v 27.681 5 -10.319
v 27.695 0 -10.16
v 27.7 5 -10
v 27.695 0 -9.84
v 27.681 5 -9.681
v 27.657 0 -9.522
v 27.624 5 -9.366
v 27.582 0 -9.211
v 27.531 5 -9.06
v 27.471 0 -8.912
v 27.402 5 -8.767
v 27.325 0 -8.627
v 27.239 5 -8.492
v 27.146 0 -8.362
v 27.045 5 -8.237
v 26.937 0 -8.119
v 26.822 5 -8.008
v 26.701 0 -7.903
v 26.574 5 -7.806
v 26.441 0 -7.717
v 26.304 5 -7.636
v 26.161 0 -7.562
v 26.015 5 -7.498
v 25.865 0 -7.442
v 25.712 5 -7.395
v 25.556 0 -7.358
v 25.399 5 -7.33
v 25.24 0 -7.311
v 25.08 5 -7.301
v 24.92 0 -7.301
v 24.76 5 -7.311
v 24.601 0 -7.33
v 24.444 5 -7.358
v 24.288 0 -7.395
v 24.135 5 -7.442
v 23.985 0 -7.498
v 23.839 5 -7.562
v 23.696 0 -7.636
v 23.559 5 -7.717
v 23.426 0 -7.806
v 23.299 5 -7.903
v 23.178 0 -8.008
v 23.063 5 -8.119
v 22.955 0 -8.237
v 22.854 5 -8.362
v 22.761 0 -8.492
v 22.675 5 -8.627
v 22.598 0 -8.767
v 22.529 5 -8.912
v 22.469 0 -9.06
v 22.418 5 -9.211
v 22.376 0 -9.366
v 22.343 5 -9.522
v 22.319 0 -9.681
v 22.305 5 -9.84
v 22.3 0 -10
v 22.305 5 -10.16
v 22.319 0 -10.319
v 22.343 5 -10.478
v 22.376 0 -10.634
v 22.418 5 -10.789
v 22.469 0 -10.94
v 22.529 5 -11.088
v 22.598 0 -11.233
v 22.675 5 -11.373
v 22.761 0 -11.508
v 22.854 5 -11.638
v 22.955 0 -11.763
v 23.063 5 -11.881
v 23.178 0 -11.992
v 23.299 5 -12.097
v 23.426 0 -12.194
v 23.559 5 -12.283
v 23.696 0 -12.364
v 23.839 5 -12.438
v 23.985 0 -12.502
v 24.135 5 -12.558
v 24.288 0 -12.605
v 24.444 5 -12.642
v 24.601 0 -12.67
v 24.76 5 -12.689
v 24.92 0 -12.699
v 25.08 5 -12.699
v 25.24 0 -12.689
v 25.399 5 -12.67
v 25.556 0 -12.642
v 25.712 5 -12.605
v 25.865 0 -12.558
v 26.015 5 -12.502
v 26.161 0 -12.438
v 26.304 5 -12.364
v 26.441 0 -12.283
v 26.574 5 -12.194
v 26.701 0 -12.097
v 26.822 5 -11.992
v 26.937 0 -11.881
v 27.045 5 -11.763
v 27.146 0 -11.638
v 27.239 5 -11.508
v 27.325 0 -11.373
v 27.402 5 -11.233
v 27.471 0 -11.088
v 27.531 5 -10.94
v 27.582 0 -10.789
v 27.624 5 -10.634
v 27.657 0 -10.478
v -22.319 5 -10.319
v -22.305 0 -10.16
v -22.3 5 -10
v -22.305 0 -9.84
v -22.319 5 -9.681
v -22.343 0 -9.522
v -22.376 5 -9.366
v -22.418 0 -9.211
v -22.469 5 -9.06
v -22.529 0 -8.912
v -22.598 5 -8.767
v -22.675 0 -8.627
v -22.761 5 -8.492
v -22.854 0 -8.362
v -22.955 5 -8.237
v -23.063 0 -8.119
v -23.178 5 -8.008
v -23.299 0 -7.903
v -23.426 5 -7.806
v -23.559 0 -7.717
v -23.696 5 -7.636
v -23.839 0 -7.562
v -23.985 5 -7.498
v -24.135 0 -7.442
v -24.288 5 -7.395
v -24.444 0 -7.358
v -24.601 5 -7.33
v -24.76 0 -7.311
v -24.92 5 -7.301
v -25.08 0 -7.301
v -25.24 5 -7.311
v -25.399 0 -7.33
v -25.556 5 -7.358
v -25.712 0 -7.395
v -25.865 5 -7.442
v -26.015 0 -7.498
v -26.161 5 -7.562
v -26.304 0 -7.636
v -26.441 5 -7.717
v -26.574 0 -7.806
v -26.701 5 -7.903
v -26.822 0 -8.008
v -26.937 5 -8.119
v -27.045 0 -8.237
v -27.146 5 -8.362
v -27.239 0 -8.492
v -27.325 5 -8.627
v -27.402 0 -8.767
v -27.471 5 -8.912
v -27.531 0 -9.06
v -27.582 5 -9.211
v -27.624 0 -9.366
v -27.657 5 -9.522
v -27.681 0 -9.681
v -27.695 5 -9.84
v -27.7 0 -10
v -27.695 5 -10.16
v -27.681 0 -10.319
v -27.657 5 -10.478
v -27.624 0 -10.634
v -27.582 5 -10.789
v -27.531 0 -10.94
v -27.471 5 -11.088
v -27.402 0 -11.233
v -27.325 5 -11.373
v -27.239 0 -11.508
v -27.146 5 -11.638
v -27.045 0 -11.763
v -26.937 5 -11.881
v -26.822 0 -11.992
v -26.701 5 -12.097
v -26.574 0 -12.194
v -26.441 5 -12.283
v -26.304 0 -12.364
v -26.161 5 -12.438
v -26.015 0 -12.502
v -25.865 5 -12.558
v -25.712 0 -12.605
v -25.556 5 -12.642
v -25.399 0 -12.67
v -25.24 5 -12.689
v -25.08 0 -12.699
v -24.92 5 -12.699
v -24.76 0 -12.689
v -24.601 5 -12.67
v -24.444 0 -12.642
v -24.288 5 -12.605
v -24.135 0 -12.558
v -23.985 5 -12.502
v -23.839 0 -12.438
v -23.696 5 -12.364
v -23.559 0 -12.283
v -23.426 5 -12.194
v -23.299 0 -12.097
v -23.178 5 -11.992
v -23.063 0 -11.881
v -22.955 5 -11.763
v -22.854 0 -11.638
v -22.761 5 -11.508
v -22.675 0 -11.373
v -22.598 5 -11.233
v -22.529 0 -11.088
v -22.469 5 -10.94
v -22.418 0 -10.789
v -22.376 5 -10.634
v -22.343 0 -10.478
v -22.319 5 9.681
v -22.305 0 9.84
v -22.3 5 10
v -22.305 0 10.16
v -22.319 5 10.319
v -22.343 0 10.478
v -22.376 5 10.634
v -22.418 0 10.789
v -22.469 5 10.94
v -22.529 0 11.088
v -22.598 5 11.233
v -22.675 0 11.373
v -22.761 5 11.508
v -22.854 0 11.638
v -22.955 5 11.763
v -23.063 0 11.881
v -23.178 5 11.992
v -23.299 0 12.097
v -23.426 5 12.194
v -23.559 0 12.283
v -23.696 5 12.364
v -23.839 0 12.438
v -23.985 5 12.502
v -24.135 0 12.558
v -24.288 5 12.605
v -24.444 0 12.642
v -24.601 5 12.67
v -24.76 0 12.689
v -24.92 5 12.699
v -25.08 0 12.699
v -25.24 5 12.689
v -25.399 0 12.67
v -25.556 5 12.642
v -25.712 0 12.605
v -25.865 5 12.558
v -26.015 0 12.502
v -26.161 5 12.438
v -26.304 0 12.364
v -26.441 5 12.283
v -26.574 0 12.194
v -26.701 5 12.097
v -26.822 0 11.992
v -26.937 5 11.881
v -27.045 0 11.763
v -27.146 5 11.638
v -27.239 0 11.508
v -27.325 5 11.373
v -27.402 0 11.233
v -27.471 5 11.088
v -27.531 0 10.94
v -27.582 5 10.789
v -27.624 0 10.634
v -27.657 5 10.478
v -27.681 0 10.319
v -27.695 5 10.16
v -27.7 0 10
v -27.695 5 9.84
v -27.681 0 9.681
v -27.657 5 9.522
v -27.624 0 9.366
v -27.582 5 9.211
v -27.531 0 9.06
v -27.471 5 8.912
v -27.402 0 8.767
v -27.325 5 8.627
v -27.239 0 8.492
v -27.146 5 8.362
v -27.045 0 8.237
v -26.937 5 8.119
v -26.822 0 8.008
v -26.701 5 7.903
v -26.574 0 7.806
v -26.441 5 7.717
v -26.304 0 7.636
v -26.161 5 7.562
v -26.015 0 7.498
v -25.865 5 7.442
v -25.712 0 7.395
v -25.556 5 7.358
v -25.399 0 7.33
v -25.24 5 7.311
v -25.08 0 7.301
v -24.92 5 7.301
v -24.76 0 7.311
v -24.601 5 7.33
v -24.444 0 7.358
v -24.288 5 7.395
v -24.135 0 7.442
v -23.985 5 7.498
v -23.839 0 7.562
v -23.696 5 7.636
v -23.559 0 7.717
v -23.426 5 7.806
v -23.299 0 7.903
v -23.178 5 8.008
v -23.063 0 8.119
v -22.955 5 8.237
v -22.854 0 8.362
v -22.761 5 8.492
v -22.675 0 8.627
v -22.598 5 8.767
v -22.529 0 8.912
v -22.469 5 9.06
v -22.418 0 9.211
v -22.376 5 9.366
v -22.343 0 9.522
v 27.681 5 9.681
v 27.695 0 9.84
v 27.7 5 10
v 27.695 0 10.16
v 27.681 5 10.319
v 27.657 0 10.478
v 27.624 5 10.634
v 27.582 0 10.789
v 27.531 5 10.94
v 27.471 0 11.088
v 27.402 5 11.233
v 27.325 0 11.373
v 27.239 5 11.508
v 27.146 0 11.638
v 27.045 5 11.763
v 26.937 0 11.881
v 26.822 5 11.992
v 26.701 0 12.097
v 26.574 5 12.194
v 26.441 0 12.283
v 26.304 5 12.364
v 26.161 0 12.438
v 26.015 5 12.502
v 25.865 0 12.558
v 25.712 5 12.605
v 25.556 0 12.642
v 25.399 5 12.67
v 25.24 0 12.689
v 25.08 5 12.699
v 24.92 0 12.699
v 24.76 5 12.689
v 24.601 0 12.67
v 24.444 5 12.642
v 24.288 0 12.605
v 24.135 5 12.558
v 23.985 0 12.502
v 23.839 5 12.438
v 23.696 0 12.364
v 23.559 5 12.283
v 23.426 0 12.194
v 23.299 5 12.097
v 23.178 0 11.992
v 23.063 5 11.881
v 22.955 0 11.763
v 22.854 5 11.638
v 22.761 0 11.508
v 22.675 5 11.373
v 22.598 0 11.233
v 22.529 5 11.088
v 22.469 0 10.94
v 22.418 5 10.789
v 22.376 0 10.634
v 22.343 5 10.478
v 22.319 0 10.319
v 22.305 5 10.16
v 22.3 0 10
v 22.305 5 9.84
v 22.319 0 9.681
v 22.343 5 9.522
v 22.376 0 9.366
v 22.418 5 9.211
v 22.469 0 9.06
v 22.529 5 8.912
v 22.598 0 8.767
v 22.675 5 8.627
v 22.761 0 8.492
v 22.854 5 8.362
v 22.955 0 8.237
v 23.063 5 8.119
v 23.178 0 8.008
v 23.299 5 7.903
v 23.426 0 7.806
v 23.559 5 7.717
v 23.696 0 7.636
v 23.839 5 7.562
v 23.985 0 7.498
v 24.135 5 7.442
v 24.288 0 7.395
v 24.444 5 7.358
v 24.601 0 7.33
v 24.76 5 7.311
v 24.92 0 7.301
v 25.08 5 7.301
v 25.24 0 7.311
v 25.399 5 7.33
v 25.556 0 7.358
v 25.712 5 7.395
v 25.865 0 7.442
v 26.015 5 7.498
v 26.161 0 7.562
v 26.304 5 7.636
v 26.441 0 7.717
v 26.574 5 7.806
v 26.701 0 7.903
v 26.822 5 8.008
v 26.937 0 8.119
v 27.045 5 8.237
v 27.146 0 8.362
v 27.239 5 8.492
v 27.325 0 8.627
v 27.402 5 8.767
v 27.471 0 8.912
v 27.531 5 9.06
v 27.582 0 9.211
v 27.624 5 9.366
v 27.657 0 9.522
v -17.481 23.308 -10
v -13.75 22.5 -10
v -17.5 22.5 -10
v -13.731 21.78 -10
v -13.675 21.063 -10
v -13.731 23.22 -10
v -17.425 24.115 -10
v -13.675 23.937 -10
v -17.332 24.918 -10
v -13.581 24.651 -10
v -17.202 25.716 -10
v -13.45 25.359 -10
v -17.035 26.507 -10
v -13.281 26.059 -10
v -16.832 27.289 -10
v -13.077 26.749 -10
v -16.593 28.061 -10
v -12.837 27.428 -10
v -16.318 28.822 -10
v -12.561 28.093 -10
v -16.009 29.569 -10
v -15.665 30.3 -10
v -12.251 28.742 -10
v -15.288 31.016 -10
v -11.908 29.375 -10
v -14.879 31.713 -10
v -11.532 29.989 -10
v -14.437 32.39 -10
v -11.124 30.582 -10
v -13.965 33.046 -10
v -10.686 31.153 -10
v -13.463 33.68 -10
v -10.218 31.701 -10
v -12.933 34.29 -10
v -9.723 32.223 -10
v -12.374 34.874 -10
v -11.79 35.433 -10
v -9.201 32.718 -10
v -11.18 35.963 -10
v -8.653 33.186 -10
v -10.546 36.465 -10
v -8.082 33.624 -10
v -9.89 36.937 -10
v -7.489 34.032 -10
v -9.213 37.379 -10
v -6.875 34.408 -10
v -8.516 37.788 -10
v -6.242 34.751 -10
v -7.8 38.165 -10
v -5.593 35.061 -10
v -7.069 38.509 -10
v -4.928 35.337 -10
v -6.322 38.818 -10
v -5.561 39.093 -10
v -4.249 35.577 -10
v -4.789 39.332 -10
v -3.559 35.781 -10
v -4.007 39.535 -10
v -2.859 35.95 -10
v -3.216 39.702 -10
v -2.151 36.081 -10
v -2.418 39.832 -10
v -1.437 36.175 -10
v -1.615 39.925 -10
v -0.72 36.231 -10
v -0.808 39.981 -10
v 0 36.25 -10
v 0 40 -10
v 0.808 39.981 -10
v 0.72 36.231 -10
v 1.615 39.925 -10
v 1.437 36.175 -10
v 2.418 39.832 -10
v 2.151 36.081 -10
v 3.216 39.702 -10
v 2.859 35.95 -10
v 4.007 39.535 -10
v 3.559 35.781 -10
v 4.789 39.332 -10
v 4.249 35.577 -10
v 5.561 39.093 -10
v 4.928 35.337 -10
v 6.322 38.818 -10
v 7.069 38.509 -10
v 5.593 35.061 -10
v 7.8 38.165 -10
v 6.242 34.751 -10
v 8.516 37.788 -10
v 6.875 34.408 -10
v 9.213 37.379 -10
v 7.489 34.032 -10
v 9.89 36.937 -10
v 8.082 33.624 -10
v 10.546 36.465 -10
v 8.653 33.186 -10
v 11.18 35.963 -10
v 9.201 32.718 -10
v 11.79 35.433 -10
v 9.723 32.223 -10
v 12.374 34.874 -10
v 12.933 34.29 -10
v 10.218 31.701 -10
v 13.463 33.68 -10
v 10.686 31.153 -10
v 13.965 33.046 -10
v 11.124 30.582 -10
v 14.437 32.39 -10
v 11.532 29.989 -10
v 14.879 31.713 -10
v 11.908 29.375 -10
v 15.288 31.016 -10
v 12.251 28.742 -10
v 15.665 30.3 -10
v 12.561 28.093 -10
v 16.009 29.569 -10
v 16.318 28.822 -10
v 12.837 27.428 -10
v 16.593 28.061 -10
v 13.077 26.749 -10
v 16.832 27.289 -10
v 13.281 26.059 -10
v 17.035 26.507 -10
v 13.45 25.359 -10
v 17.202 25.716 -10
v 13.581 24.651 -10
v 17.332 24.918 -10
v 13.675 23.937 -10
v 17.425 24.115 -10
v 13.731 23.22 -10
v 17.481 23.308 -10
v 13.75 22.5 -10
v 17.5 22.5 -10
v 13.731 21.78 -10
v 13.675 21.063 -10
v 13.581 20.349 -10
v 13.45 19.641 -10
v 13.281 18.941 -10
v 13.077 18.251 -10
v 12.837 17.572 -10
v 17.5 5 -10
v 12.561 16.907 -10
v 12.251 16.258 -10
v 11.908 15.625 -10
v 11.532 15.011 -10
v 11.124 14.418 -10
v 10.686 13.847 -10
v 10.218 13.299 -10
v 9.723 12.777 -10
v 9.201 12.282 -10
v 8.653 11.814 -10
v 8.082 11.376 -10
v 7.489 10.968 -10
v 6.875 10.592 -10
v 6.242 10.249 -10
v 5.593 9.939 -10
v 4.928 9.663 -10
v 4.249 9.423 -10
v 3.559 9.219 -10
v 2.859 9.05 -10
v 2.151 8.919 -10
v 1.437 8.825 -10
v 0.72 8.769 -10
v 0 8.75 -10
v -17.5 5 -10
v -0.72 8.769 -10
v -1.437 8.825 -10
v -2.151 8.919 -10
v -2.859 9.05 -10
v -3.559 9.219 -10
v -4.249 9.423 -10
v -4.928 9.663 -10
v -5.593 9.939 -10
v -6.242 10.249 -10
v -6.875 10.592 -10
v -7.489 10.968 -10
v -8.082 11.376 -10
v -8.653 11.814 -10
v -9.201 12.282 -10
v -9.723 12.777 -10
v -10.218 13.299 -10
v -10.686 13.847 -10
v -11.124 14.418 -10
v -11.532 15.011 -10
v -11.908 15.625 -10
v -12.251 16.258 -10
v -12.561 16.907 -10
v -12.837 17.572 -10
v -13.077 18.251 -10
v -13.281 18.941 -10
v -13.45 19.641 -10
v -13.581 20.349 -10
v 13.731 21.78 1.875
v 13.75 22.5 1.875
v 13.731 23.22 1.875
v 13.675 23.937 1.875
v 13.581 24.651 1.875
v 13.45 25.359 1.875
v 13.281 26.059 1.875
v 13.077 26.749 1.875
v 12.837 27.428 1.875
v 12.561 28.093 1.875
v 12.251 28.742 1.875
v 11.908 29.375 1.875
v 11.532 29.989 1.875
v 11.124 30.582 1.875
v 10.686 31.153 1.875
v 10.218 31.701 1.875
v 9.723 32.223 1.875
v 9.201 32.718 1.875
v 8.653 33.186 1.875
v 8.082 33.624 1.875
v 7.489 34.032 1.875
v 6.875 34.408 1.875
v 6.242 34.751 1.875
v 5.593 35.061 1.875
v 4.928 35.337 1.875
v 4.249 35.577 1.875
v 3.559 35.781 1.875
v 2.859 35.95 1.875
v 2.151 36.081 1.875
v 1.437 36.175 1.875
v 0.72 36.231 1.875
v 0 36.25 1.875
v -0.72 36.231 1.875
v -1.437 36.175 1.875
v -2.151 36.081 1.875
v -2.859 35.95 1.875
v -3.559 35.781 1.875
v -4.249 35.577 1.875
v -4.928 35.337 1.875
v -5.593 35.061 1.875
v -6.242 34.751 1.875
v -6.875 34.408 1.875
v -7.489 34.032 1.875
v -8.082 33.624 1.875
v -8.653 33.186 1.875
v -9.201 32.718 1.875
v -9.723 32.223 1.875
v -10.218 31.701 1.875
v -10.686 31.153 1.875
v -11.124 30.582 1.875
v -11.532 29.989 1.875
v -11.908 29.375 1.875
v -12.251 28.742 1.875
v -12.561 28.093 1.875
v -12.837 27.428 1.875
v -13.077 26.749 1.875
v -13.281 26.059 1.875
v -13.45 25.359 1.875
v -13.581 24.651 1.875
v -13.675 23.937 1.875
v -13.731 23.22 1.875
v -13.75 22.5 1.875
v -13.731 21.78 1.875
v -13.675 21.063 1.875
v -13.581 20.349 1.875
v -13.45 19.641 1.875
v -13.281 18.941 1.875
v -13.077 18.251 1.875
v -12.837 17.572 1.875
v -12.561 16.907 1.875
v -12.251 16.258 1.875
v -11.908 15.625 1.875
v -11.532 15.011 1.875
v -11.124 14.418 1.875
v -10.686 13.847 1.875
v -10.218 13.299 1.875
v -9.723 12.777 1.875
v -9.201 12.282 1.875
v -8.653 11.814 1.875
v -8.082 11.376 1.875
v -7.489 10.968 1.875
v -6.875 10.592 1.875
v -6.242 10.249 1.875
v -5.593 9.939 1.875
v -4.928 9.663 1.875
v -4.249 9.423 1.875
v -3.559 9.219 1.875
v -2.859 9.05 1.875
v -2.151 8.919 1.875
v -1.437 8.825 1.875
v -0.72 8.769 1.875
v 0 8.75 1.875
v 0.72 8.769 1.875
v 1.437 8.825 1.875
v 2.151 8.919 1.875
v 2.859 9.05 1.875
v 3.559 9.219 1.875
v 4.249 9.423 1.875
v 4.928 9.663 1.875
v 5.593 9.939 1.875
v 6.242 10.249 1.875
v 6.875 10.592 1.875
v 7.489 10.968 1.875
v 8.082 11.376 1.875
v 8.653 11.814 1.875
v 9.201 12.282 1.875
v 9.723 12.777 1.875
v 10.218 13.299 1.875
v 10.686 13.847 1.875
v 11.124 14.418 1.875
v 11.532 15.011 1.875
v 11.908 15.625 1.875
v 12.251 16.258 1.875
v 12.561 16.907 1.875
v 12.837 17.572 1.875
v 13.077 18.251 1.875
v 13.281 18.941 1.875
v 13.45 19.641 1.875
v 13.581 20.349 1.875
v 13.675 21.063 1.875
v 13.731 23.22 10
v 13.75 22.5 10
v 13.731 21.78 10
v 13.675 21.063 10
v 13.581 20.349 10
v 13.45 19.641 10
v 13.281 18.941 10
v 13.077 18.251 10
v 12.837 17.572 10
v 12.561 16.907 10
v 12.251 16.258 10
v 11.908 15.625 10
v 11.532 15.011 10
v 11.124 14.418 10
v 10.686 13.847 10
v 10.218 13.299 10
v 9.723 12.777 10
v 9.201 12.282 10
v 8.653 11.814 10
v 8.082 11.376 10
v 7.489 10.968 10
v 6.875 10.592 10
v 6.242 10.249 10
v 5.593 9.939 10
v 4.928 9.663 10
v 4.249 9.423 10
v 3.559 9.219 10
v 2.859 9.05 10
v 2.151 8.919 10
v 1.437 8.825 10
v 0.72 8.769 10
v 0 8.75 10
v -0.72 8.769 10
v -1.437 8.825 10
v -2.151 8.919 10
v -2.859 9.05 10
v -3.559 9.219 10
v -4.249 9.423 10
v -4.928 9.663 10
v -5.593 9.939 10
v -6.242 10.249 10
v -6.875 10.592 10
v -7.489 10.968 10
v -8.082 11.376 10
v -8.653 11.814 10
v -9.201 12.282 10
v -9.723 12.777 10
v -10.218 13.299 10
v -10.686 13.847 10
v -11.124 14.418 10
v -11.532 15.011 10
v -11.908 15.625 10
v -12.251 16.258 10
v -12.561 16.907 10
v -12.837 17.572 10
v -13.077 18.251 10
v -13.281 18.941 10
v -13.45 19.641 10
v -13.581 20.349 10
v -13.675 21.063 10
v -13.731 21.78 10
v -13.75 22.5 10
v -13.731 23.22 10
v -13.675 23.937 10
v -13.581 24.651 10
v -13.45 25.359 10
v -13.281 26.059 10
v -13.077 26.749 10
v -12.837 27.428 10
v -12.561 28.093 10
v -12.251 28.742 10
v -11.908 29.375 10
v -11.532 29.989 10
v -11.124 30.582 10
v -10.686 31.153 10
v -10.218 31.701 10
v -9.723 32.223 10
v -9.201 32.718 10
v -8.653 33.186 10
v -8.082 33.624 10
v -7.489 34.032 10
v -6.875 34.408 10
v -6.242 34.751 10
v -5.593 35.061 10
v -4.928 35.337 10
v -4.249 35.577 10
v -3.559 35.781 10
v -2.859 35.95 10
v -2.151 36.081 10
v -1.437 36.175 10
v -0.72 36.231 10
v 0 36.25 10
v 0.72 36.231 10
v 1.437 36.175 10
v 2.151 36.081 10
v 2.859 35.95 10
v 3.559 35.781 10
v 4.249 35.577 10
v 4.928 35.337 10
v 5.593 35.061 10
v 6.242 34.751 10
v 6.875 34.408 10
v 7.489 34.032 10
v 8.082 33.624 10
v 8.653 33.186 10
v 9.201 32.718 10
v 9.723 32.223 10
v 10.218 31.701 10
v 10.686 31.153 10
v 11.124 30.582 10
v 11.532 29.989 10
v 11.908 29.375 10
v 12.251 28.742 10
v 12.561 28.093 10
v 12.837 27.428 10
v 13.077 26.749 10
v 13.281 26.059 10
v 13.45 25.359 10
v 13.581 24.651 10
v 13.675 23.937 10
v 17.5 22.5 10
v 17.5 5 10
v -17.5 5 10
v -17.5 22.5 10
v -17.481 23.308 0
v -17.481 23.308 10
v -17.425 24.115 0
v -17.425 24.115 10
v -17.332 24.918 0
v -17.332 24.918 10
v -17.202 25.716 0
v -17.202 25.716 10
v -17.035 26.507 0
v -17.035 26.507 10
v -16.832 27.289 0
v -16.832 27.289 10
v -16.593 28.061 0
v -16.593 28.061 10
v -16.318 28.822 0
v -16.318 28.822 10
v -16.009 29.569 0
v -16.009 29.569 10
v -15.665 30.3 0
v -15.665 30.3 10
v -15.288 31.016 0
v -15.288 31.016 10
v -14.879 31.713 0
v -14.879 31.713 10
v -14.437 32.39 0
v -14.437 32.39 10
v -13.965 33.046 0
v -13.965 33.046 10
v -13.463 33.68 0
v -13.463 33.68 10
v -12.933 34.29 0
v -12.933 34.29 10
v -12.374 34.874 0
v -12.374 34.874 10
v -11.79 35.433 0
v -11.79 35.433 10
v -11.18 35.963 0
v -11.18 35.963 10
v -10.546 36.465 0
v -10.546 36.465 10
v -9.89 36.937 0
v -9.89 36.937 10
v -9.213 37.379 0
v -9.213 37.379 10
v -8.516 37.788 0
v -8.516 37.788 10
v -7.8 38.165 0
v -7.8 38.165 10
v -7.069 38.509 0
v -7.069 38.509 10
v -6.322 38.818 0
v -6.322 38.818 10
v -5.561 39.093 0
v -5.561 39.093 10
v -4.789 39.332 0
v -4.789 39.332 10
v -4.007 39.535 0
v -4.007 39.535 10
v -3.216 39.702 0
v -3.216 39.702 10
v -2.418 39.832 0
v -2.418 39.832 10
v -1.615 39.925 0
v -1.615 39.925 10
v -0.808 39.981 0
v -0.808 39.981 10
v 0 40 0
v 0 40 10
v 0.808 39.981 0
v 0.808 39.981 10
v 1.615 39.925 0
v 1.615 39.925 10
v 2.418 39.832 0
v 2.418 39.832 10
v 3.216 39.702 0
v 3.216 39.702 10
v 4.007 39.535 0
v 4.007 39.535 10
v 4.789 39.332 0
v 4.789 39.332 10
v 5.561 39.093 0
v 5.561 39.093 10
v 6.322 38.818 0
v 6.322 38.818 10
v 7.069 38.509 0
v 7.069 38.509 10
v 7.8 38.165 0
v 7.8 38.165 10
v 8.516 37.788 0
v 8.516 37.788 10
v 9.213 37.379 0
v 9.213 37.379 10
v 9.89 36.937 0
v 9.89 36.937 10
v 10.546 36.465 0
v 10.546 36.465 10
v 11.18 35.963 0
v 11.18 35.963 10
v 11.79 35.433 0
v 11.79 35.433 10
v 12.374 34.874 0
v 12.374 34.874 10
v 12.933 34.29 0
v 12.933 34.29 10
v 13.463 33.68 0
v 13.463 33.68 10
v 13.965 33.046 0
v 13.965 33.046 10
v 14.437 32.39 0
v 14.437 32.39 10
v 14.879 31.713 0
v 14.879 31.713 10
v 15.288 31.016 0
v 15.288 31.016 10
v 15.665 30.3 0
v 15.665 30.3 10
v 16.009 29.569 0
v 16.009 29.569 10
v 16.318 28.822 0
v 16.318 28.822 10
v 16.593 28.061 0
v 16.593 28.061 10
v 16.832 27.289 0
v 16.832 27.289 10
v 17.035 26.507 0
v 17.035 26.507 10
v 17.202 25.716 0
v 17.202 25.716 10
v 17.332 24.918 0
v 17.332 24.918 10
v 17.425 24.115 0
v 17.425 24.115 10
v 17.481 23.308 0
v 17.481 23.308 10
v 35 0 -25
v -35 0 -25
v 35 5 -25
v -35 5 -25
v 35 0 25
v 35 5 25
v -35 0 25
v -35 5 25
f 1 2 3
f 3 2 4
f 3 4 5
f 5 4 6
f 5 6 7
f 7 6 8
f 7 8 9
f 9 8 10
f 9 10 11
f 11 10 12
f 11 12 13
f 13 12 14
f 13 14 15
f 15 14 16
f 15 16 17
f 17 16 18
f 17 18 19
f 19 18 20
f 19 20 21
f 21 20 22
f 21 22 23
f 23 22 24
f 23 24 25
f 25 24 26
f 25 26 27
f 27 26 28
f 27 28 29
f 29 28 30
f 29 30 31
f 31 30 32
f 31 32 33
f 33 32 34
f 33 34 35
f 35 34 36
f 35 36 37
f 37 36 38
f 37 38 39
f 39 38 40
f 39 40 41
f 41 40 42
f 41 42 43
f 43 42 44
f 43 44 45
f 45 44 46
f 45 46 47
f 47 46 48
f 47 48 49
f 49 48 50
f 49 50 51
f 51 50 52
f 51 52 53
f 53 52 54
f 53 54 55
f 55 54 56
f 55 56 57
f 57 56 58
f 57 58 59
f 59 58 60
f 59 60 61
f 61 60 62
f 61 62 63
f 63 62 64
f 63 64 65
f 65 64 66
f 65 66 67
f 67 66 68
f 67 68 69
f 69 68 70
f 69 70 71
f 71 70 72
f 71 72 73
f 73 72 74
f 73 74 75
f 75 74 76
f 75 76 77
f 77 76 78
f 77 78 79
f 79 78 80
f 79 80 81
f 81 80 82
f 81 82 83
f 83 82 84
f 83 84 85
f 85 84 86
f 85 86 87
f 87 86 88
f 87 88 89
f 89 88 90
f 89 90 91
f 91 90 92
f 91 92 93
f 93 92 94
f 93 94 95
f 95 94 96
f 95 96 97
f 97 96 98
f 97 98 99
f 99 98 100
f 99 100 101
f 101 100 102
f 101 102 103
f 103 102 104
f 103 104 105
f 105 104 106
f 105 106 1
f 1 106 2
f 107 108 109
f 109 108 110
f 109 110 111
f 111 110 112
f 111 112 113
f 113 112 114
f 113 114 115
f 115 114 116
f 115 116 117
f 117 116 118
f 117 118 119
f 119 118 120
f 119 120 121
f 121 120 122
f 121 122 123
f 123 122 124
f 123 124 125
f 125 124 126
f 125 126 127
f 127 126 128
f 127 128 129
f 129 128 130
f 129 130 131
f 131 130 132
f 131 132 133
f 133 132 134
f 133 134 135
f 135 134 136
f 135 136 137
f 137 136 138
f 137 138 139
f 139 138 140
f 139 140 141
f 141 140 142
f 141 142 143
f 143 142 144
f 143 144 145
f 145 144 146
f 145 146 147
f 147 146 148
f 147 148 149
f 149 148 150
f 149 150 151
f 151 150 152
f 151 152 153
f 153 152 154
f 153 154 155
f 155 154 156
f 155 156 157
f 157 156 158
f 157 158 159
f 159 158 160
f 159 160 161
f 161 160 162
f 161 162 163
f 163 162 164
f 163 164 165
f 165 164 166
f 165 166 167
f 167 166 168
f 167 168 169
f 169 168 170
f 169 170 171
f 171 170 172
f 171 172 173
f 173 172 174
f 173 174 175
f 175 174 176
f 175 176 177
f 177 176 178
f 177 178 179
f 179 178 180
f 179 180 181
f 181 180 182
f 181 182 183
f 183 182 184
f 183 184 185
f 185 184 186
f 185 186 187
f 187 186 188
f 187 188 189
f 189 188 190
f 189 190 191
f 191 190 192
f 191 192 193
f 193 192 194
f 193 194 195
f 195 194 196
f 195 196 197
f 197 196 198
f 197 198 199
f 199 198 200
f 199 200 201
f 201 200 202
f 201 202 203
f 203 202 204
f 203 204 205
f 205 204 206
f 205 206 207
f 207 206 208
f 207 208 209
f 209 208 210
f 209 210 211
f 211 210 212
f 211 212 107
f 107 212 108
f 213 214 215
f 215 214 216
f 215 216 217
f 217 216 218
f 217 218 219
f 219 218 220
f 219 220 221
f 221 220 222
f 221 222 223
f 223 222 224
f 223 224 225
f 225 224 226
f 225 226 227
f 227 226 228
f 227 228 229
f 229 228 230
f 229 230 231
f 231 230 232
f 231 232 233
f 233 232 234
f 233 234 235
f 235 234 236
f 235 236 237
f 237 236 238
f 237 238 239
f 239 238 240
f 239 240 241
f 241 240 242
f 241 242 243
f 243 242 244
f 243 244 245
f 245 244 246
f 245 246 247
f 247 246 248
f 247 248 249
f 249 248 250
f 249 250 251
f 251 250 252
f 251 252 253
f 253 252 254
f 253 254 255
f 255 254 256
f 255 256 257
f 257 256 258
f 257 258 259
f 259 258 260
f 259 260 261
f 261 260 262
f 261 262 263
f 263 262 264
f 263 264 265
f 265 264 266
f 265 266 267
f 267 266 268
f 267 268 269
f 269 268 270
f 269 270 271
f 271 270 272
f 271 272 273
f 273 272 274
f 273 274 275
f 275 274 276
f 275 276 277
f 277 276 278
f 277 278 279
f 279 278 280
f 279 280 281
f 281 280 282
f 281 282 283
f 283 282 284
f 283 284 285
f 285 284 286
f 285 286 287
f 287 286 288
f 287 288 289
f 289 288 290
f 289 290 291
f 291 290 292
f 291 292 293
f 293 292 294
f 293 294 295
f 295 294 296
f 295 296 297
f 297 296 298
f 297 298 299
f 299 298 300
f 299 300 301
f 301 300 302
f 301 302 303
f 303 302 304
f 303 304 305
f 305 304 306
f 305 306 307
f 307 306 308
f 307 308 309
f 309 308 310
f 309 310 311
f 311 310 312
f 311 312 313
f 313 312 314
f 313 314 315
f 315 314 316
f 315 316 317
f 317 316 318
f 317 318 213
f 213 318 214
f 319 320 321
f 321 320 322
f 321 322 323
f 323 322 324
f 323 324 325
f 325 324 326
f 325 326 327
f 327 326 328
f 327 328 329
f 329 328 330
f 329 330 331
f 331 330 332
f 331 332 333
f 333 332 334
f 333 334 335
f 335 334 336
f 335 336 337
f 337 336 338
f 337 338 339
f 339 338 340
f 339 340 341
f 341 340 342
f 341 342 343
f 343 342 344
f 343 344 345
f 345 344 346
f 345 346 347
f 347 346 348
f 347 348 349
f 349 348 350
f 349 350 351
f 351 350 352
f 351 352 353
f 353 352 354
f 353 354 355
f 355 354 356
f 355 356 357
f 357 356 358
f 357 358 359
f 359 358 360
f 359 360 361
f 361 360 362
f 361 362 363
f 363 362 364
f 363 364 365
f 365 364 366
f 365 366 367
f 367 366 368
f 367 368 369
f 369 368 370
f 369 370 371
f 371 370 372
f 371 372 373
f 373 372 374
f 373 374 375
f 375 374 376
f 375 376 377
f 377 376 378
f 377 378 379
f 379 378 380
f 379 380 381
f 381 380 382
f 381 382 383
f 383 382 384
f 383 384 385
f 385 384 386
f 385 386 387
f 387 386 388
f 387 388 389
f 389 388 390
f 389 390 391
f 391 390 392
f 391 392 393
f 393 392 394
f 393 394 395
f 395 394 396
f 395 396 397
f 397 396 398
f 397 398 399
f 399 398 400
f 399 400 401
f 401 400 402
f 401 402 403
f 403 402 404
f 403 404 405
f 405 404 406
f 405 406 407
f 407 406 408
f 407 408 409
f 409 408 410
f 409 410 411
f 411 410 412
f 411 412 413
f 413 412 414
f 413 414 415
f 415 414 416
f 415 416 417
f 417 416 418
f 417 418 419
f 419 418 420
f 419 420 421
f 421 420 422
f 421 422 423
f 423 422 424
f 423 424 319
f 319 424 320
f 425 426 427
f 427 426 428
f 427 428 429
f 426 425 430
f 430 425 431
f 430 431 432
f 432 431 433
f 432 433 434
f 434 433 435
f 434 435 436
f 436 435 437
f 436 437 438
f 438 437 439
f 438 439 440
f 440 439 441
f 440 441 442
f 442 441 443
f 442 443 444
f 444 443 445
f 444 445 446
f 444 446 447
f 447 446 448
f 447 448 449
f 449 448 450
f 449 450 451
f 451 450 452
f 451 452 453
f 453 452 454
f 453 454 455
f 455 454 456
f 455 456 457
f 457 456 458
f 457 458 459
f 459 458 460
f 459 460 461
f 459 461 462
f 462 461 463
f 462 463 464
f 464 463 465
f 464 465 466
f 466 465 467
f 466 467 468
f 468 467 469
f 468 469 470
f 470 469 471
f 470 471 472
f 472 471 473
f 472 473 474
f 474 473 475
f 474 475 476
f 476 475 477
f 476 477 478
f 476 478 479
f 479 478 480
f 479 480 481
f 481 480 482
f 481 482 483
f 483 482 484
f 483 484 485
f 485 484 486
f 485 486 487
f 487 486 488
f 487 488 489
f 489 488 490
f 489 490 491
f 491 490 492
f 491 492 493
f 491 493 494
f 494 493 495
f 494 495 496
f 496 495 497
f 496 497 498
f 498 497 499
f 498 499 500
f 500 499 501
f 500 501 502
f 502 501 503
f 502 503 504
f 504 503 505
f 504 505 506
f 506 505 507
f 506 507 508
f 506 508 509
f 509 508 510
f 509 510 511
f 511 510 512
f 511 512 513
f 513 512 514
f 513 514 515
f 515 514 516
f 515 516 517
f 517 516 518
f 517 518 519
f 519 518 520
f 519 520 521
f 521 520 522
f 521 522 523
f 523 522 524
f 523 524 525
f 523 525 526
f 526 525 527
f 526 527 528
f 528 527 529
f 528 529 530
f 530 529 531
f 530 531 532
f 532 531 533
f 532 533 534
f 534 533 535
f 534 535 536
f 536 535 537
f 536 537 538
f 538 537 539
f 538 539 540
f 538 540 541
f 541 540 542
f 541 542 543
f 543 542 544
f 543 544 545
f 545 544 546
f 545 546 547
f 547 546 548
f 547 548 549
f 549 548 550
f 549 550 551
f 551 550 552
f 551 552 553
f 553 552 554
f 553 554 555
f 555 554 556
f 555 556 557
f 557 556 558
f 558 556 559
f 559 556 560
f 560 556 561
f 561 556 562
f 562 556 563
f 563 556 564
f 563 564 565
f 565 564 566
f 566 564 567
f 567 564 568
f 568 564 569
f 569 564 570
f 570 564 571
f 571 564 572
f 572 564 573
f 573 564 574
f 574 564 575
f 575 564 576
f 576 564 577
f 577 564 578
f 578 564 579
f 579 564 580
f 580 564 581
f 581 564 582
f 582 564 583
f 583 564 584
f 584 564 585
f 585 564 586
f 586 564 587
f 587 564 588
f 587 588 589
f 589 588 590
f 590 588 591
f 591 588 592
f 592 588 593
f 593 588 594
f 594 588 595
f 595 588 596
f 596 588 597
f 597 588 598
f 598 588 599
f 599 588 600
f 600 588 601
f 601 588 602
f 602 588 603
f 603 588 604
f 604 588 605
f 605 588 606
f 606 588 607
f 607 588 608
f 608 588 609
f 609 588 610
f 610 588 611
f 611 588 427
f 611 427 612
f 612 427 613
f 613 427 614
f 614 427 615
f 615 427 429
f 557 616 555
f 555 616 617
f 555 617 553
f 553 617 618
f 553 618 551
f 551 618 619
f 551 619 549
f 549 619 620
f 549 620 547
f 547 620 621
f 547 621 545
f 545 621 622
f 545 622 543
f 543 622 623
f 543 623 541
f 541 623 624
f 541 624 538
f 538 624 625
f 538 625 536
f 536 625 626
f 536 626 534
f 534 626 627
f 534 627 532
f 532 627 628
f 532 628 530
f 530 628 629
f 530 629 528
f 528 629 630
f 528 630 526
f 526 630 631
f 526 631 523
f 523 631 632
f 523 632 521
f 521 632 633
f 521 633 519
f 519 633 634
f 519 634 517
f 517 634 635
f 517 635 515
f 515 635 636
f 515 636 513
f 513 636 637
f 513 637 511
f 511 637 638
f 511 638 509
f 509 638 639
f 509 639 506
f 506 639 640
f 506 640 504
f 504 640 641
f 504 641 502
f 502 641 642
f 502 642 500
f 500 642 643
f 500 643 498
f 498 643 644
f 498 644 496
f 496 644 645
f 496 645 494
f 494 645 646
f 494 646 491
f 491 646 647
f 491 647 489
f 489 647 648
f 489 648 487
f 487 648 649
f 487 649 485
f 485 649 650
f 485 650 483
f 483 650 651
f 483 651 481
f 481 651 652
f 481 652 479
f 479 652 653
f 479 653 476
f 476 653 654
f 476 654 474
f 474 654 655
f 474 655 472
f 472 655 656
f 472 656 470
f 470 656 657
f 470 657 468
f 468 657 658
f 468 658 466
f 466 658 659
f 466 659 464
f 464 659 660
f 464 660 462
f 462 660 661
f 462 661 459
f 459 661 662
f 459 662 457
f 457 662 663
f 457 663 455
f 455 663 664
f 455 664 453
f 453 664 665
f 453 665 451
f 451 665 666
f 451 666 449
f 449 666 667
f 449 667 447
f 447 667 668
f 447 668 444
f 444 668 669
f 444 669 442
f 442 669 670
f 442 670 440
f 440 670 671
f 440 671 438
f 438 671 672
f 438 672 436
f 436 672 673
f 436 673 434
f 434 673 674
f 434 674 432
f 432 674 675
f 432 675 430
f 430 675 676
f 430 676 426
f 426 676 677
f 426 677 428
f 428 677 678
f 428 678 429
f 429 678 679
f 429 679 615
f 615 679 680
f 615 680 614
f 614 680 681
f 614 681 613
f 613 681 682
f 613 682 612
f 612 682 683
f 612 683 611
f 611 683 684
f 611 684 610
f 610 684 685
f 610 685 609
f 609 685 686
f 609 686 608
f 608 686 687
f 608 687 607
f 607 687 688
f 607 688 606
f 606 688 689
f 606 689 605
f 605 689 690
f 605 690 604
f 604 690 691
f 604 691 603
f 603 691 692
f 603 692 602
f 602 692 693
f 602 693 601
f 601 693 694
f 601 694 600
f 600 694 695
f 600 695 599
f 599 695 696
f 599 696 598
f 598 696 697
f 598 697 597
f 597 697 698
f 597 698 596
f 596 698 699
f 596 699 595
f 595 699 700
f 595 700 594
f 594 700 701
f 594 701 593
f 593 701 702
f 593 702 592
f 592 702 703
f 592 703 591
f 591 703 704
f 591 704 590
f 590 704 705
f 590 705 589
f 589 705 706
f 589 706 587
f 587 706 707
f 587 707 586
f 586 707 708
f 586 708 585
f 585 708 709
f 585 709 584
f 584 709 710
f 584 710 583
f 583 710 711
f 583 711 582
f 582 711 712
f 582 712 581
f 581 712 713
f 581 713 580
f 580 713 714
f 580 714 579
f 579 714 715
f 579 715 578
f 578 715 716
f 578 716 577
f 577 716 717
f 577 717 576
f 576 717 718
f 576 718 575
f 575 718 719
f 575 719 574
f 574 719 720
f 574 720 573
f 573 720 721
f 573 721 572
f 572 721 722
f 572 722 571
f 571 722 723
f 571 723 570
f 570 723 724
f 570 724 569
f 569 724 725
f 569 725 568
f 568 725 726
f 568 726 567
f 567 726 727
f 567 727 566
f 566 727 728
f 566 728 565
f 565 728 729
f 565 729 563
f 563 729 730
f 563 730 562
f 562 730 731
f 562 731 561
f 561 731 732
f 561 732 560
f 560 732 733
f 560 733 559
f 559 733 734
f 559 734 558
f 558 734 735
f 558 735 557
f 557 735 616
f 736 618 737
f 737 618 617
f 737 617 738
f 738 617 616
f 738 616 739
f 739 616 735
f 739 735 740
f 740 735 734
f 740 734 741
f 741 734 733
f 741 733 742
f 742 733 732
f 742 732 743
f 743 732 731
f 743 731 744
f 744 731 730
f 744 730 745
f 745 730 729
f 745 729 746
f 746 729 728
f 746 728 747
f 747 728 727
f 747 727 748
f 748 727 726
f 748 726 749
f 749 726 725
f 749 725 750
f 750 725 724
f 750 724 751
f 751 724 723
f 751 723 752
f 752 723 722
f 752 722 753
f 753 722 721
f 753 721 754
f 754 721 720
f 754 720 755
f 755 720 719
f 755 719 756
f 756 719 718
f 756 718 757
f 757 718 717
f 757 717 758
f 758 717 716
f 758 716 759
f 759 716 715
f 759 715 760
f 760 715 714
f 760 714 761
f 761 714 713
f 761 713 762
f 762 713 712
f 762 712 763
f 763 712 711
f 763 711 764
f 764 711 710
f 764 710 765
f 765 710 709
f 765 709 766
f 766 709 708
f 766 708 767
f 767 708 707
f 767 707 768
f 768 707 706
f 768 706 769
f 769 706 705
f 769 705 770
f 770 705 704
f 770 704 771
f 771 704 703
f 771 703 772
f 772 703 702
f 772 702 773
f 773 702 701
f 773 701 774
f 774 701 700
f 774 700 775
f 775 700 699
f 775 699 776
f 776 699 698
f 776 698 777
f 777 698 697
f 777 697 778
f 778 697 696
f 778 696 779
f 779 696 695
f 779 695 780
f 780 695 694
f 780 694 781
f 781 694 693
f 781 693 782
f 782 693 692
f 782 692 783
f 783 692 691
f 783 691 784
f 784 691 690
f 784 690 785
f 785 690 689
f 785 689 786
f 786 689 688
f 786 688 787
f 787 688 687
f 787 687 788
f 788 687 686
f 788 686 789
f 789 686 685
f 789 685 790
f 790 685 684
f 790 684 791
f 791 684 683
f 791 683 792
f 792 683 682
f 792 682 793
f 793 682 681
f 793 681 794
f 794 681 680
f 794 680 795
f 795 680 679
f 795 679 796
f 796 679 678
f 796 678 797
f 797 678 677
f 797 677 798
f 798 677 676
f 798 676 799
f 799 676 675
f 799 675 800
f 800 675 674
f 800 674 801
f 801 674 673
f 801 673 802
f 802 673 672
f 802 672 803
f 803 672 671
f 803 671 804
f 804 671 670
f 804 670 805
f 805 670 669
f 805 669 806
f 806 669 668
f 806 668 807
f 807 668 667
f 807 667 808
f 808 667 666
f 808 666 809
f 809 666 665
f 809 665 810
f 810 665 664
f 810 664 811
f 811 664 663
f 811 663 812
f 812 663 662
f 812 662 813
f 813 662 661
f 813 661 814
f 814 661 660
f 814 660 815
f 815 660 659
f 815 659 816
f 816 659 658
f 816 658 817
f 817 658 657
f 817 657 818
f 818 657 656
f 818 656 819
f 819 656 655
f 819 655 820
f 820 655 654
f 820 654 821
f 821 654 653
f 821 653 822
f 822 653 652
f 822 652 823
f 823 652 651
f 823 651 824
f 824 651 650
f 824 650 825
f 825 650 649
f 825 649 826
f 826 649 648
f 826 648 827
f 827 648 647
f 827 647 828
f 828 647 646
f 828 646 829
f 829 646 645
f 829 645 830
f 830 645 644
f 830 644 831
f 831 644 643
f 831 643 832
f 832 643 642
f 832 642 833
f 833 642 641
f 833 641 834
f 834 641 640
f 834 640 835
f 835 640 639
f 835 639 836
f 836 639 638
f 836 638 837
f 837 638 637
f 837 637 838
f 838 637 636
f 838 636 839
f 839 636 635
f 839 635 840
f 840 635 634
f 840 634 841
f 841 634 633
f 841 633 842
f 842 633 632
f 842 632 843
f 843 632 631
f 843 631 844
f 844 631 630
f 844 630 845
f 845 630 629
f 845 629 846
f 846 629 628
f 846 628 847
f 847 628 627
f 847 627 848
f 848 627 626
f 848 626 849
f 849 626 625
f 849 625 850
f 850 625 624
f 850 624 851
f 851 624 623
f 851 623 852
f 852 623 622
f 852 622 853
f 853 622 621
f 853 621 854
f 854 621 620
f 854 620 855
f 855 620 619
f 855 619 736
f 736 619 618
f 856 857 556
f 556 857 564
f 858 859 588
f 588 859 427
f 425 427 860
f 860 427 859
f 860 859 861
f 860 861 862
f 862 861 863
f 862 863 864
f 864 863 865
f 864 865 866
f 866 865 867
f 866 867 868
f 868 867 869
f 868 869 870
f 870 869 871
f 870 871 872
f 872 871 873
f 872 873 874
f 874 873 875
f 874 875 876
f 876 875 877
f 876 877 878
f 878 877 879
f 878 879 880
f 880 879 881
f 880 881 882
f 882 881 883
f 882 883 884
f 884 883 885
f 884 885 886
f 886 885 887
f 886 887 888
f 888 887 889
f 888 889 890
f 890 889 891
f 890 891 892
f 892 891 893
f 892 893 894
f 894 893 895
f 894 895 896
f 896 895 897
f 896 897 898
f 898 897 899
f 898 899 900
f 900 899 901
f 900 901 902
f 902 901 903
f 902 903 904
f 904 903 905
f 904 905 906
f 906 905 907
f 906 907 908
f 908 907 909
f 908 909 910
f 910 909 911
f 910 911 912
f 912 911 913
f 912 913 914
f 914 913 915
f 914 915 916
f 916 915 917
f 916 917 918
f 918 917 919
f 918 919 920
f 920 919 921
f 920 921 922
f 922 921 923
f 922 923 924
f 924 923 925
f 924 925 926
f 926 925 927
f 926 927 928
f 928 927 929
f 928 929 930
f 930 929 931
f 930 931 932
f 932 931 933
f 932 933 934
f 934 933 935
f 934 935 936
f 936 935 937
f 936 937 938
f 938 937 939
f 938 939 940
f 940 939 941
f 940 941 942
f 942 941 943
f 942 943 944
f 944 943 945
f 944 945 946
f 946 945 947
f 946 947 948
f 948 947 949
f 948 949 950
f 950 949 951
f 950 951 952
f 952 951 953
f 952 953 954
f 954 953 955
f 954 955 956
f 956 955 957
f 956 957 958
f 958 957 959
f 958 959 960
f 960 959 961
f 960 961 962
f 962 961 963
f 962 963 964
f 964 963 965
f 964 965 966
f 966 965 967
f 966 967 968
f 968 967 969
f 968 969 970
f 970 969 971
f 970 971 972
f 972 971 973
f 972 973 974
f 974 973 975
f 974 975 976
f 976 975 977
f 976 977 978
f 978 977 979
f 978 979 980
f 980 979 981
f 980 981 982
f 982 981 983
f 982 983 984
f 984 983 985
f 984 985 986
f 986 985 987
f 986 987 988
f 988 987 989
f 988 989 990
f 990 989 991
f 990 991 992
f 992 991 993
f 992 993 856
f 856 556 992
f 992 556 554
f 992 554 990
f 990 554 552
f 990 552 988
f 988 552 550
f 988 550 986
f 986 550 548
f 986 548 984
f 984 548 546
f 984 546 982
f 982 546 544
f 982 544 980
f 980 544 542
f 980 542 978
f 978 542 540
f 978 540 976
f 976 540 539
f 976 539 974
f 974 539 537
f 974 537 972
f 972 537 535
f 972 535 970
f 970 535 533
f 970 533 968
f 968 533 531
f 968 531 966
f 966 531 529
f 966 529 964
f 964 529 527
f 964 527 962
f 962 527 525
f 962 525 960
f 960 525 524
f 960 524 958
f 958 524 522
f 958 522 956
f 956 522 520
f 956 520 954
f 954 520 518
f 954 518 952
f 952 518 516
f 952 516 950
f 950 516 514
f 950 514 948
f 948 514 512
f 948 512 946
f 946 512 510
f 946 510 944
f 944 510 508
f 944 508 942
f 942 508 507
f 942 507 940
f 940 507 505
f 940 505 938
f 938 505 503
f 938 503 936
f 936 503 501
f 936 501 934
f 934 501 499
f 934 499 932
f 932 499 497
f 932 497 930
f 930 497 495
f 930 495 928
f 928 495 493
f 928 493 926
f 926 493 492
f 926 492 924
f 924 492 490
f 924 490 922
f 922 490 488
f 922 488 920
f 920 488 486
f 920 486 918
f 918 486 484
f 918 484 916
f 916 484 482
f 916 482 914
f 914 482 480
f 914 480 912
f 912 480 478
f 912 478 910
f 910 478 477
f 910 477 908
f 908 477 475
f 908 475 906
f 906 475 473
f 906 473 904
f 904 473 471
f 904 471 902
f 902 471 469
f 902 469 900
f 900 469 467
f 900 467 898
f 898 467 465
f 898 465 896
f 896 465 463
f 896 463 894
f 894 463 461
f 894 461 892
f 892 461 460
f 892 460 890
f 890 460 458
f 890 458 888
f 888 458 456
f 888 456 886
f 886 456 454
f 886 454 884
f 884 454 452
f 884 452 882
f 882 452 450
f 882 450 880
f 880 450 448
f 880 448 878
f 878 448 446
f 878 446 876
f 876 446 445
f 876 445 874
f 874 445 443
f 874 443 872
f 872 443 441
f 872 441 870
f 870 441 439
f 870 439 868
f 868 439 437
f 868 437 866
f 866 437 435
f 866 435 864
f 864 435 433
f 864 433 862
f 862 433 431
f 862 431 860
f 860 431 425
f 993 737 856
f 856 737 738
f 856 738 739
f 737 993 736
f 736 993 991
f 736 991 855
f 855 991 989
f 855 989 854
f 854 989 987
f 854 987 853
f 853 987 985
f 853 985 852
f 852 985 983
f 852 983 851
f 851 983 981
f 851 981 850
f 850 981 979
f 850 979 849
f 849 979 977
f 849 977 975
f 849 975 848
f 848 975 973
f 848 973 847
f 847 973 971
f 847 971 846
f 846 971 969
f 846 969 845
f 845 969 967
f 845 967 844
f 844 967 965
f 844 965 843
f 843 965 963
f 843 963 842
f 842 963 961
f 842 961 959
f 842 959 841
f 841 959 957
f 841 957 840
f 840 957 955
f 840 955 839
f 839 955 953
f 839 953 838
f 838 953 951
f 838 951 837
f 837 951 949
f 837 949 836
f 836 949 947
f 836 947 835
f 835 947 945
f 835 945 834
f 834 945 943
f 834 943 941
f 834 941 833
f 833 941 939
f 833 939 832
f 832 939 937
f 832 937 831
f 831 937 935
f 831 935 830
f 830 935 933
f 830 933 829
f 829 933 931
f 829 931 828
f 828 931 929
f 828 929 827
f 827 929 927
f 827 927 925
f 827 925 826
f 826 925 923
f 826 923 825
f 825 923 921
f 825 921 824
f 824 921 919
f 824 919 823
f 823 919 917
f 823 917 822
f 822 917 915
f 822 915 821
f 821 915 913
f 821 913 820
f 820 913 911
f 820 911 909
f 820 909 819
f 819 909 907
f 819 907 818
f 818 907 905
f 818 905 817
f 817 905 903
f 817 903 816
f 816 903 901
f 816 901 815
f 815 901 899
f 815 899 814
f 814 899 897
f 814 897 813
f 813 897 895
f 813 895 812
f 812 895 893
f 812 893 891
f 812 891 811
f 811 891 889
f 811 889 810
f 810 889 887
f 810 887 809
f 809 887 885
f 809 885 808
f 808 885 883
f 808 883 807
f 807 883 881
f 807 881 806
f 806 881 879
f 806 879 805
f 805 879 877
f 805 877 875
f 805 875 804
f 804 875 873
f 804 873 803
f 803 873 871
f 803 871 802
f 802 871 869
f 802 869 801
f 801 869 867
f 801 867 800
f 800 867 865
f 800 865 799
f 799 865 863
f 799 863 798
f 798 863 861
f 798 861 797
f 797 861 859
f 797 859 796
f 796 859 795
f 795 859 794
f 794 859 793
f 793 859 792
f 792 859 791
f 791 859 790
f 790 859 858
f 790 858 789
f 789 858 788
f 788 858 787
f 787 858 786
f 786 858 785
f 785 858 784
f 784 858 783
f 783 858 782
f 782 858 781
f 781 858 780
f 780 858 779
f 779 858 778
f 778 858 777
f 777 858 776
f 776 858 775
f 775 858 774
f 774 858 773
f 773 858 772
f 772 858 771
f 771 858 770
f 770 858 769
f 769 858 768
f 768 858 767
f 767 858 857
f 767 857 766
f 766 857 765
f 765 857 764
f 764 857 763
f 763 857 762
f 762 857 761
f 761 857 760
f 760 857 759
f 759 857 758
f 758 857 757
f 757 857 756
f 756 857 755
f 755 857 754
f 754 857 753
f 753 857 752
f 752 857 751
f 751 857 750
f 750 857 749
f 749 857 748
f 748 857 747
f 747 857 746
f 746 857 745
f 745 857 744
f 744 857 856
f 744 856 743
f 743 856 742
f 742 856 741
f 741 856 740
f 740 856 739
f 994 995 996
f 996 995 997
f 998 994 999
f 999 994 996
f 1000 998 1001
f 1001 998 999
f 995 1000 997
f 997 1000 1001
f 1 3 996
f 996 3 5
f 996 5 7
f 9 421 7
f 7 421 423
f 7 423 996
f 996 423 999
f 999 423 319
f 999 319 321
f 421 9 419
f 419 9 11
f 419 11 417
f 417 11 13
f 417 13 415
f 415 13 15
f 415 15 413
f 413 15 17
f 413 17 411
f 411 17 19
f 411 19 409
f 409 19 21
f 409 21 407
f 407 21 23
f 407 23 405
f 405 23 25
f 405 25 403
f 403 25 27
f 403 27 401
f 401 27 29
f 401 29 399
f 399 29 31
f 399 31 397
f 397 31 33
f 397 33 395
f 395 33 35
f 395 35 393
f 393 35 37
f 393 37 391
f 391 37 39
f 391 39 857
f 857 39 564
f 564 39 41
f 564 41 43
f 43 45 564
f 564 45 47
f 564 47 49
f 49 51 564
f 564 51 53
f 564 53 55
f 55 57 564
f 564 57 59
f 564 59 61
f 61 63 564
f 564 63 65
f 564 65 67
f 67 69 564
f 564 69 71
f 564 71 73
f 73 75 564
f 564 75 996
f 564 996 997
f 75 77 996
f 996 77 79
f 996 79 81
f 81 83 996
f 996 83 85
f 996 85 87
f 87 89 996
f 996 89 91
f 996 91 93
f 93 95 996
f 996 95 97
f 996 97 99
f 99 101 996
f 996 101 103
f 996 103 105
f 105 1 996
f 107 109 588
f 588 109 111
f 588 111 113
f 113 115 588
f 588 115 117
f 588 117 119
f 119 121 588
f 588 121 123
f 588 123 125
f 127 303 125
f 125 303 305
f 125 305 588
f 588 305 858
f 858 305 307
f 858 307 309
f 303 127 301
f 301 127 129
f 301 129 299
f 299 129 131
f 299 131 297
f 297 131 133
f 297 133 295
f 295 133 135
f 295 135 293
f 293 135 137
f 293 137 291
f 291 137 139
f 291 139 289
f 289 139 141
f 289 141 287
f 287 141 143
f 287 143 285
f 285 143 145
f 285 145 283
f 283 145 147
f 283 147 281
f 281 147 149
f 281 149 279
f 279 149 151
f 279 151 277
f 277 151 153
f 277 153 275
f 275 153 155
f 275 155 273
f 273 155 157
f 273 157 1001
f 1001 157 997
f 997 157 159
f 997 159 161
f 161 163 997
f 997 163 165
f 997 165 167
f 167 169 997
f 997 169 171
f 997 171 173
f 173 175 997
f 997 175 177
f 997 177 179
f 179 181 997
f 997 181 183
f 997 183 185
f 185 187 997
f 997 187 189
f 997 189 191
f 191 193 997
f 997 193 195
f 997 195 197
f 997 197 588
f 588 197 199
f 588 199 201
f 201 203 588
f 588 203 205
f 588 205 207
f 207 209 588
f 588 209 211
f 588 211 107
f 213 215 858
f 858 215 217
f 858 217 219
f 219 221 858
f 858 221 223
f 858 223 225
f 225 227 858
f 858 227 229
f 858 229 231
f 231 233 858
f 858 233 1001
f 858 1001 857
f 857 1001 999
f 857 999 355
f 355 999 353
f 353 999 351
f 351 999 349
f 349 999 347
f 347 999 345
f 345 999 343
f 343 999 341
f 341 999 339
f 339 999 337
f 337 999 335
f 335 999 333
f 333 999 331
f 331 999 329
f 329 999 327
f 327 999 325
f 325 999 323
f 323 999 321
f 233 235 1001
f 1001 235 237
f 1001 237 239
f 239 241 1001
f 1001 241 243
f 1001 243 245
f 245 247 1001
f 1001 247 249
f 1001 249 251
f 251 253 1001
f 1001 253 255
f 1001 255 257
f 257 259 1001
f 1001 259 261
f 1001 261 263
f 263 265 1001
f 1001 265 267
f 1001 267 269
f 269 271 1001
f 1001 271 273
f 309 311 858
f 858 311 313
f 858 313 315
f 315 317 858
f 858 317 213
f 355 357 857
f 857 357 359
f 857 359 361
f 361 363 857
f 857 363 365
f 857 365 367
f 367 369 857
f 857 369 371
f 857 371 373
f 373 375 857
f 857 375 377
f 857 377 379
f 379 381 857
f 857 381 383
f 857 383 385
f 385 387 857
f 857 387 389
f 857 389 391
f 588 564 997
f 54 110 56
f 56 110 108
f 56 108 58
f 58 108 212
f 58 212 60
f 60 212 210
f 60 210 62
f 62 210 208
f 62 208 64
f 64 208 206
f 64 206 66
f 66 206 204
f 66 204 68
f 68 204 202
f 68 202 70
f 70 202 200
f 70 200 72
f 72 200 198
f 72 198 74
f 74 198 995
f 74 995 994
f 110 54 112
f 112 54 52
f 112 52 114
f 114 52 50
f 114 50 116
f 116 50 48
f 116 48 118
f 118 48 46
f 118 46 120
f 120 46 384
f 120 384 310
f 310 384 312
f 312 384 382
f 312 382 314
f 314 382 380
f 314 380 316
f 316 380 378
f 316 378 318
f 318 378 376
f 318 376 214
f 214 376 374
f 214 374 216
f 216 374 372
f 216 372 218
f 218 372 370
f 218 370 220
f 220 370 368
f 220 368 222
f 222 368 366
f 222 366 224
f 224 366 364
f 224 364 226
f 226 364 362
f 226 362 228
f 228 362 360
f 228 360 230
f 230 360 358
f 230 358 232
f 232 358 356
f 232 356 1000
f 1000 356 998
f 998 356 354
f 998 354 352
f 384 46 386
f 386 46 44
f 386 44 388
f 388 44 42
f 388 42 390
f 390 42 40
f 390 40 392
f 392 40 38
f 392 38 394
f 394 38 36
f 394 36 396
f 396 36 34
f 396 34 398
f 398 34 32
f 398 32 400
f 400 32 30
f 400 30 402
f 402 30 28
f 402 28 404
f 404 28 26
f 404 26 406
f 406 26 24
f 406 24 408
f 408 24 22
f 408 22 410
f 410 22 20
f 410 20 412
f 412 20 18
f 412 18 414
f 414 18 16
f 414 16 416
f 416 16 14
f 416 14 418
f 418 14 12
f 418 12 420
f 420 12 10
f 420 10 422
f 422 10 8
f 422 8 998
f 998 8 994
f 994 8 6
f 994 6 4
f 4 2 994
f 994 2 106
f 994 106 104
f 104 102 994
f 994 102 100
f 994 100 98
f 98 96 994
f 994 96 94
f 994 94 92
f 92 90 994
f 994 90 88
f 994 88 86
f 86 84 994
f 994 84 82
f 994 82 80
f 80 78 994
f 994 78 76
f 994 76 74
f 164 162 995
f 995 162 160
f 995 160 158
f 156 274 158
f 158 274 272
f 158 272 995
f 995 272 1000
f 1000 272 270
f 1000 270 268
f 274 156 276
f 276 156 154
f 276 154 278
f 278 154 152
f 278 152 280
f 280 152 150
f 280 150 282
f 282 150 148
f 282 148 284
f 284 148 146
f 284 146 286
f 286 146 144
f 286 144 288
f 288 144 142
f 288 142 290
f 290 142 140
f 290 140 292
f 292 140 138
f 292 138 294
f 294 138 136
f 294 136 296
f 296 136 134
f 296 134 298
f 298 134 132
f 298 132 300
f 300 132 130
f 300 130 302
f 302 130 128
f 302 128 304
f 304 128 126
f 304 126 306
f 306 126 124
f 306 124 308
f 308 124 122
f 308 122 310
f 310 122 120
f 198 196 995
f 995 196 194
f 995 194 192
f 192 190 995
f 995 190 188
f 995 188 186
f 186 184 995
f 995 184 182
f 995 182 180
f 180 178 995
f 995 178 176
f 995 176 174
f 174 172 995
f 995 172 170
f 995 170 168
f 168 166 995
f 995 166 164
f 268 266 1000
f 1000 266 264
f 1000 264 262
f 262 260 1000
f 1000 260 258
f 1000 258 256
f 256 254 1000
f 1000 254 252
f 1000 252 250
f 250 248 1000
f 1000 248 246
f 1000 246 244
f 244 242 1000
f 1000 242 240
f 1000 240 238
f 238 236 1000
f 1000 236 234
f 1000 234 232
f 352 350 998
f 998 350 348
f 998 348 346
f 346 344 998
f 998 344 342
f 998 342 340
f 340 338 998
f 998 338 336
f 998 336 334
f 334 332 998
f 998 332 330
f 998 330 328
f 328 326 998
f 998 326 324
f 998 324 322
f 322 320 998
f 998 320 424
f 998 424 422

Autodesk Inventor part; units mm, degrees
ref_plane "YZ Plane" through (0, 0, 0) normal (1, 0, 0) x (0, 1, 0)
ref_plane "XZ Plane" through (0, 0, 0) normal (0, 1, 0) x (-1, 0, 0)
ref_plane "XY Plane" through (0, 0, 0) normal (0, 0, 1) x (1, 0, 0)
sketch "Sketch1" plane through (0, 0, 0) normal (0, 1, 0) x (-1, 0, 0)
  line L0 (-35, -25) -> (35, -25)
  line L1 (35, -25) -> (35, 25)
  line L2 (35, 25) -> (-35, 25)
  line L3 (-35, 25) -> (-35, -25)
  line L4 (-35, -25) -> (35, 25) construction
  line L5 (35, -25) -> (-35, 25) construction
  line L6 (25, -10) -> (25, 10)
  line L7 (-25, -10) -> (-25, 10)
  point P0 (0, 0)
  point P1 (25, 0)
  point P2 (0, 0)
  point P3 (-25, 0)
  dimension "d0" = 70
  dimension "d1" = 50
  dimension "d17" = 20
  dimension "d18" = 20
  dimension "d19" = 10
  dimension "d20" = 10
extrude "Extrusion1" add sketch "Sketch1" along normal blind 5
sketch "Sketch3" plane through (0, 0, 0) normal (0, 0, 1) x (1, 0, 0)
  circle A0 centre (0, 22.5) radius 17.5
  line L0 (-35, 5) -> (35, 5) projected
  circle A1 centre (0, 22.5) radius 13.75
  line L1 (17.5, 22.5) -> (17.5, 5)
  line L2 (-17.5, 22.5) -> (-17.5, 5)
  point P0 (0, 0)
  point P1 (0, 5)
  point P2 (0, 5)
  dimension "d13" = 35
  dimension "d14" = 27.5
extrude "Extrusion2" add sketch "Sketch3" along normal mid plane 20
hole "Hole2" at (-25, 0, -10) at (-25, 0, 10) at (25, 0, -10) at (25, 0, 10) direction (0, 1, 0) diameter 5.4 end through all
properties part number "base_motor"
